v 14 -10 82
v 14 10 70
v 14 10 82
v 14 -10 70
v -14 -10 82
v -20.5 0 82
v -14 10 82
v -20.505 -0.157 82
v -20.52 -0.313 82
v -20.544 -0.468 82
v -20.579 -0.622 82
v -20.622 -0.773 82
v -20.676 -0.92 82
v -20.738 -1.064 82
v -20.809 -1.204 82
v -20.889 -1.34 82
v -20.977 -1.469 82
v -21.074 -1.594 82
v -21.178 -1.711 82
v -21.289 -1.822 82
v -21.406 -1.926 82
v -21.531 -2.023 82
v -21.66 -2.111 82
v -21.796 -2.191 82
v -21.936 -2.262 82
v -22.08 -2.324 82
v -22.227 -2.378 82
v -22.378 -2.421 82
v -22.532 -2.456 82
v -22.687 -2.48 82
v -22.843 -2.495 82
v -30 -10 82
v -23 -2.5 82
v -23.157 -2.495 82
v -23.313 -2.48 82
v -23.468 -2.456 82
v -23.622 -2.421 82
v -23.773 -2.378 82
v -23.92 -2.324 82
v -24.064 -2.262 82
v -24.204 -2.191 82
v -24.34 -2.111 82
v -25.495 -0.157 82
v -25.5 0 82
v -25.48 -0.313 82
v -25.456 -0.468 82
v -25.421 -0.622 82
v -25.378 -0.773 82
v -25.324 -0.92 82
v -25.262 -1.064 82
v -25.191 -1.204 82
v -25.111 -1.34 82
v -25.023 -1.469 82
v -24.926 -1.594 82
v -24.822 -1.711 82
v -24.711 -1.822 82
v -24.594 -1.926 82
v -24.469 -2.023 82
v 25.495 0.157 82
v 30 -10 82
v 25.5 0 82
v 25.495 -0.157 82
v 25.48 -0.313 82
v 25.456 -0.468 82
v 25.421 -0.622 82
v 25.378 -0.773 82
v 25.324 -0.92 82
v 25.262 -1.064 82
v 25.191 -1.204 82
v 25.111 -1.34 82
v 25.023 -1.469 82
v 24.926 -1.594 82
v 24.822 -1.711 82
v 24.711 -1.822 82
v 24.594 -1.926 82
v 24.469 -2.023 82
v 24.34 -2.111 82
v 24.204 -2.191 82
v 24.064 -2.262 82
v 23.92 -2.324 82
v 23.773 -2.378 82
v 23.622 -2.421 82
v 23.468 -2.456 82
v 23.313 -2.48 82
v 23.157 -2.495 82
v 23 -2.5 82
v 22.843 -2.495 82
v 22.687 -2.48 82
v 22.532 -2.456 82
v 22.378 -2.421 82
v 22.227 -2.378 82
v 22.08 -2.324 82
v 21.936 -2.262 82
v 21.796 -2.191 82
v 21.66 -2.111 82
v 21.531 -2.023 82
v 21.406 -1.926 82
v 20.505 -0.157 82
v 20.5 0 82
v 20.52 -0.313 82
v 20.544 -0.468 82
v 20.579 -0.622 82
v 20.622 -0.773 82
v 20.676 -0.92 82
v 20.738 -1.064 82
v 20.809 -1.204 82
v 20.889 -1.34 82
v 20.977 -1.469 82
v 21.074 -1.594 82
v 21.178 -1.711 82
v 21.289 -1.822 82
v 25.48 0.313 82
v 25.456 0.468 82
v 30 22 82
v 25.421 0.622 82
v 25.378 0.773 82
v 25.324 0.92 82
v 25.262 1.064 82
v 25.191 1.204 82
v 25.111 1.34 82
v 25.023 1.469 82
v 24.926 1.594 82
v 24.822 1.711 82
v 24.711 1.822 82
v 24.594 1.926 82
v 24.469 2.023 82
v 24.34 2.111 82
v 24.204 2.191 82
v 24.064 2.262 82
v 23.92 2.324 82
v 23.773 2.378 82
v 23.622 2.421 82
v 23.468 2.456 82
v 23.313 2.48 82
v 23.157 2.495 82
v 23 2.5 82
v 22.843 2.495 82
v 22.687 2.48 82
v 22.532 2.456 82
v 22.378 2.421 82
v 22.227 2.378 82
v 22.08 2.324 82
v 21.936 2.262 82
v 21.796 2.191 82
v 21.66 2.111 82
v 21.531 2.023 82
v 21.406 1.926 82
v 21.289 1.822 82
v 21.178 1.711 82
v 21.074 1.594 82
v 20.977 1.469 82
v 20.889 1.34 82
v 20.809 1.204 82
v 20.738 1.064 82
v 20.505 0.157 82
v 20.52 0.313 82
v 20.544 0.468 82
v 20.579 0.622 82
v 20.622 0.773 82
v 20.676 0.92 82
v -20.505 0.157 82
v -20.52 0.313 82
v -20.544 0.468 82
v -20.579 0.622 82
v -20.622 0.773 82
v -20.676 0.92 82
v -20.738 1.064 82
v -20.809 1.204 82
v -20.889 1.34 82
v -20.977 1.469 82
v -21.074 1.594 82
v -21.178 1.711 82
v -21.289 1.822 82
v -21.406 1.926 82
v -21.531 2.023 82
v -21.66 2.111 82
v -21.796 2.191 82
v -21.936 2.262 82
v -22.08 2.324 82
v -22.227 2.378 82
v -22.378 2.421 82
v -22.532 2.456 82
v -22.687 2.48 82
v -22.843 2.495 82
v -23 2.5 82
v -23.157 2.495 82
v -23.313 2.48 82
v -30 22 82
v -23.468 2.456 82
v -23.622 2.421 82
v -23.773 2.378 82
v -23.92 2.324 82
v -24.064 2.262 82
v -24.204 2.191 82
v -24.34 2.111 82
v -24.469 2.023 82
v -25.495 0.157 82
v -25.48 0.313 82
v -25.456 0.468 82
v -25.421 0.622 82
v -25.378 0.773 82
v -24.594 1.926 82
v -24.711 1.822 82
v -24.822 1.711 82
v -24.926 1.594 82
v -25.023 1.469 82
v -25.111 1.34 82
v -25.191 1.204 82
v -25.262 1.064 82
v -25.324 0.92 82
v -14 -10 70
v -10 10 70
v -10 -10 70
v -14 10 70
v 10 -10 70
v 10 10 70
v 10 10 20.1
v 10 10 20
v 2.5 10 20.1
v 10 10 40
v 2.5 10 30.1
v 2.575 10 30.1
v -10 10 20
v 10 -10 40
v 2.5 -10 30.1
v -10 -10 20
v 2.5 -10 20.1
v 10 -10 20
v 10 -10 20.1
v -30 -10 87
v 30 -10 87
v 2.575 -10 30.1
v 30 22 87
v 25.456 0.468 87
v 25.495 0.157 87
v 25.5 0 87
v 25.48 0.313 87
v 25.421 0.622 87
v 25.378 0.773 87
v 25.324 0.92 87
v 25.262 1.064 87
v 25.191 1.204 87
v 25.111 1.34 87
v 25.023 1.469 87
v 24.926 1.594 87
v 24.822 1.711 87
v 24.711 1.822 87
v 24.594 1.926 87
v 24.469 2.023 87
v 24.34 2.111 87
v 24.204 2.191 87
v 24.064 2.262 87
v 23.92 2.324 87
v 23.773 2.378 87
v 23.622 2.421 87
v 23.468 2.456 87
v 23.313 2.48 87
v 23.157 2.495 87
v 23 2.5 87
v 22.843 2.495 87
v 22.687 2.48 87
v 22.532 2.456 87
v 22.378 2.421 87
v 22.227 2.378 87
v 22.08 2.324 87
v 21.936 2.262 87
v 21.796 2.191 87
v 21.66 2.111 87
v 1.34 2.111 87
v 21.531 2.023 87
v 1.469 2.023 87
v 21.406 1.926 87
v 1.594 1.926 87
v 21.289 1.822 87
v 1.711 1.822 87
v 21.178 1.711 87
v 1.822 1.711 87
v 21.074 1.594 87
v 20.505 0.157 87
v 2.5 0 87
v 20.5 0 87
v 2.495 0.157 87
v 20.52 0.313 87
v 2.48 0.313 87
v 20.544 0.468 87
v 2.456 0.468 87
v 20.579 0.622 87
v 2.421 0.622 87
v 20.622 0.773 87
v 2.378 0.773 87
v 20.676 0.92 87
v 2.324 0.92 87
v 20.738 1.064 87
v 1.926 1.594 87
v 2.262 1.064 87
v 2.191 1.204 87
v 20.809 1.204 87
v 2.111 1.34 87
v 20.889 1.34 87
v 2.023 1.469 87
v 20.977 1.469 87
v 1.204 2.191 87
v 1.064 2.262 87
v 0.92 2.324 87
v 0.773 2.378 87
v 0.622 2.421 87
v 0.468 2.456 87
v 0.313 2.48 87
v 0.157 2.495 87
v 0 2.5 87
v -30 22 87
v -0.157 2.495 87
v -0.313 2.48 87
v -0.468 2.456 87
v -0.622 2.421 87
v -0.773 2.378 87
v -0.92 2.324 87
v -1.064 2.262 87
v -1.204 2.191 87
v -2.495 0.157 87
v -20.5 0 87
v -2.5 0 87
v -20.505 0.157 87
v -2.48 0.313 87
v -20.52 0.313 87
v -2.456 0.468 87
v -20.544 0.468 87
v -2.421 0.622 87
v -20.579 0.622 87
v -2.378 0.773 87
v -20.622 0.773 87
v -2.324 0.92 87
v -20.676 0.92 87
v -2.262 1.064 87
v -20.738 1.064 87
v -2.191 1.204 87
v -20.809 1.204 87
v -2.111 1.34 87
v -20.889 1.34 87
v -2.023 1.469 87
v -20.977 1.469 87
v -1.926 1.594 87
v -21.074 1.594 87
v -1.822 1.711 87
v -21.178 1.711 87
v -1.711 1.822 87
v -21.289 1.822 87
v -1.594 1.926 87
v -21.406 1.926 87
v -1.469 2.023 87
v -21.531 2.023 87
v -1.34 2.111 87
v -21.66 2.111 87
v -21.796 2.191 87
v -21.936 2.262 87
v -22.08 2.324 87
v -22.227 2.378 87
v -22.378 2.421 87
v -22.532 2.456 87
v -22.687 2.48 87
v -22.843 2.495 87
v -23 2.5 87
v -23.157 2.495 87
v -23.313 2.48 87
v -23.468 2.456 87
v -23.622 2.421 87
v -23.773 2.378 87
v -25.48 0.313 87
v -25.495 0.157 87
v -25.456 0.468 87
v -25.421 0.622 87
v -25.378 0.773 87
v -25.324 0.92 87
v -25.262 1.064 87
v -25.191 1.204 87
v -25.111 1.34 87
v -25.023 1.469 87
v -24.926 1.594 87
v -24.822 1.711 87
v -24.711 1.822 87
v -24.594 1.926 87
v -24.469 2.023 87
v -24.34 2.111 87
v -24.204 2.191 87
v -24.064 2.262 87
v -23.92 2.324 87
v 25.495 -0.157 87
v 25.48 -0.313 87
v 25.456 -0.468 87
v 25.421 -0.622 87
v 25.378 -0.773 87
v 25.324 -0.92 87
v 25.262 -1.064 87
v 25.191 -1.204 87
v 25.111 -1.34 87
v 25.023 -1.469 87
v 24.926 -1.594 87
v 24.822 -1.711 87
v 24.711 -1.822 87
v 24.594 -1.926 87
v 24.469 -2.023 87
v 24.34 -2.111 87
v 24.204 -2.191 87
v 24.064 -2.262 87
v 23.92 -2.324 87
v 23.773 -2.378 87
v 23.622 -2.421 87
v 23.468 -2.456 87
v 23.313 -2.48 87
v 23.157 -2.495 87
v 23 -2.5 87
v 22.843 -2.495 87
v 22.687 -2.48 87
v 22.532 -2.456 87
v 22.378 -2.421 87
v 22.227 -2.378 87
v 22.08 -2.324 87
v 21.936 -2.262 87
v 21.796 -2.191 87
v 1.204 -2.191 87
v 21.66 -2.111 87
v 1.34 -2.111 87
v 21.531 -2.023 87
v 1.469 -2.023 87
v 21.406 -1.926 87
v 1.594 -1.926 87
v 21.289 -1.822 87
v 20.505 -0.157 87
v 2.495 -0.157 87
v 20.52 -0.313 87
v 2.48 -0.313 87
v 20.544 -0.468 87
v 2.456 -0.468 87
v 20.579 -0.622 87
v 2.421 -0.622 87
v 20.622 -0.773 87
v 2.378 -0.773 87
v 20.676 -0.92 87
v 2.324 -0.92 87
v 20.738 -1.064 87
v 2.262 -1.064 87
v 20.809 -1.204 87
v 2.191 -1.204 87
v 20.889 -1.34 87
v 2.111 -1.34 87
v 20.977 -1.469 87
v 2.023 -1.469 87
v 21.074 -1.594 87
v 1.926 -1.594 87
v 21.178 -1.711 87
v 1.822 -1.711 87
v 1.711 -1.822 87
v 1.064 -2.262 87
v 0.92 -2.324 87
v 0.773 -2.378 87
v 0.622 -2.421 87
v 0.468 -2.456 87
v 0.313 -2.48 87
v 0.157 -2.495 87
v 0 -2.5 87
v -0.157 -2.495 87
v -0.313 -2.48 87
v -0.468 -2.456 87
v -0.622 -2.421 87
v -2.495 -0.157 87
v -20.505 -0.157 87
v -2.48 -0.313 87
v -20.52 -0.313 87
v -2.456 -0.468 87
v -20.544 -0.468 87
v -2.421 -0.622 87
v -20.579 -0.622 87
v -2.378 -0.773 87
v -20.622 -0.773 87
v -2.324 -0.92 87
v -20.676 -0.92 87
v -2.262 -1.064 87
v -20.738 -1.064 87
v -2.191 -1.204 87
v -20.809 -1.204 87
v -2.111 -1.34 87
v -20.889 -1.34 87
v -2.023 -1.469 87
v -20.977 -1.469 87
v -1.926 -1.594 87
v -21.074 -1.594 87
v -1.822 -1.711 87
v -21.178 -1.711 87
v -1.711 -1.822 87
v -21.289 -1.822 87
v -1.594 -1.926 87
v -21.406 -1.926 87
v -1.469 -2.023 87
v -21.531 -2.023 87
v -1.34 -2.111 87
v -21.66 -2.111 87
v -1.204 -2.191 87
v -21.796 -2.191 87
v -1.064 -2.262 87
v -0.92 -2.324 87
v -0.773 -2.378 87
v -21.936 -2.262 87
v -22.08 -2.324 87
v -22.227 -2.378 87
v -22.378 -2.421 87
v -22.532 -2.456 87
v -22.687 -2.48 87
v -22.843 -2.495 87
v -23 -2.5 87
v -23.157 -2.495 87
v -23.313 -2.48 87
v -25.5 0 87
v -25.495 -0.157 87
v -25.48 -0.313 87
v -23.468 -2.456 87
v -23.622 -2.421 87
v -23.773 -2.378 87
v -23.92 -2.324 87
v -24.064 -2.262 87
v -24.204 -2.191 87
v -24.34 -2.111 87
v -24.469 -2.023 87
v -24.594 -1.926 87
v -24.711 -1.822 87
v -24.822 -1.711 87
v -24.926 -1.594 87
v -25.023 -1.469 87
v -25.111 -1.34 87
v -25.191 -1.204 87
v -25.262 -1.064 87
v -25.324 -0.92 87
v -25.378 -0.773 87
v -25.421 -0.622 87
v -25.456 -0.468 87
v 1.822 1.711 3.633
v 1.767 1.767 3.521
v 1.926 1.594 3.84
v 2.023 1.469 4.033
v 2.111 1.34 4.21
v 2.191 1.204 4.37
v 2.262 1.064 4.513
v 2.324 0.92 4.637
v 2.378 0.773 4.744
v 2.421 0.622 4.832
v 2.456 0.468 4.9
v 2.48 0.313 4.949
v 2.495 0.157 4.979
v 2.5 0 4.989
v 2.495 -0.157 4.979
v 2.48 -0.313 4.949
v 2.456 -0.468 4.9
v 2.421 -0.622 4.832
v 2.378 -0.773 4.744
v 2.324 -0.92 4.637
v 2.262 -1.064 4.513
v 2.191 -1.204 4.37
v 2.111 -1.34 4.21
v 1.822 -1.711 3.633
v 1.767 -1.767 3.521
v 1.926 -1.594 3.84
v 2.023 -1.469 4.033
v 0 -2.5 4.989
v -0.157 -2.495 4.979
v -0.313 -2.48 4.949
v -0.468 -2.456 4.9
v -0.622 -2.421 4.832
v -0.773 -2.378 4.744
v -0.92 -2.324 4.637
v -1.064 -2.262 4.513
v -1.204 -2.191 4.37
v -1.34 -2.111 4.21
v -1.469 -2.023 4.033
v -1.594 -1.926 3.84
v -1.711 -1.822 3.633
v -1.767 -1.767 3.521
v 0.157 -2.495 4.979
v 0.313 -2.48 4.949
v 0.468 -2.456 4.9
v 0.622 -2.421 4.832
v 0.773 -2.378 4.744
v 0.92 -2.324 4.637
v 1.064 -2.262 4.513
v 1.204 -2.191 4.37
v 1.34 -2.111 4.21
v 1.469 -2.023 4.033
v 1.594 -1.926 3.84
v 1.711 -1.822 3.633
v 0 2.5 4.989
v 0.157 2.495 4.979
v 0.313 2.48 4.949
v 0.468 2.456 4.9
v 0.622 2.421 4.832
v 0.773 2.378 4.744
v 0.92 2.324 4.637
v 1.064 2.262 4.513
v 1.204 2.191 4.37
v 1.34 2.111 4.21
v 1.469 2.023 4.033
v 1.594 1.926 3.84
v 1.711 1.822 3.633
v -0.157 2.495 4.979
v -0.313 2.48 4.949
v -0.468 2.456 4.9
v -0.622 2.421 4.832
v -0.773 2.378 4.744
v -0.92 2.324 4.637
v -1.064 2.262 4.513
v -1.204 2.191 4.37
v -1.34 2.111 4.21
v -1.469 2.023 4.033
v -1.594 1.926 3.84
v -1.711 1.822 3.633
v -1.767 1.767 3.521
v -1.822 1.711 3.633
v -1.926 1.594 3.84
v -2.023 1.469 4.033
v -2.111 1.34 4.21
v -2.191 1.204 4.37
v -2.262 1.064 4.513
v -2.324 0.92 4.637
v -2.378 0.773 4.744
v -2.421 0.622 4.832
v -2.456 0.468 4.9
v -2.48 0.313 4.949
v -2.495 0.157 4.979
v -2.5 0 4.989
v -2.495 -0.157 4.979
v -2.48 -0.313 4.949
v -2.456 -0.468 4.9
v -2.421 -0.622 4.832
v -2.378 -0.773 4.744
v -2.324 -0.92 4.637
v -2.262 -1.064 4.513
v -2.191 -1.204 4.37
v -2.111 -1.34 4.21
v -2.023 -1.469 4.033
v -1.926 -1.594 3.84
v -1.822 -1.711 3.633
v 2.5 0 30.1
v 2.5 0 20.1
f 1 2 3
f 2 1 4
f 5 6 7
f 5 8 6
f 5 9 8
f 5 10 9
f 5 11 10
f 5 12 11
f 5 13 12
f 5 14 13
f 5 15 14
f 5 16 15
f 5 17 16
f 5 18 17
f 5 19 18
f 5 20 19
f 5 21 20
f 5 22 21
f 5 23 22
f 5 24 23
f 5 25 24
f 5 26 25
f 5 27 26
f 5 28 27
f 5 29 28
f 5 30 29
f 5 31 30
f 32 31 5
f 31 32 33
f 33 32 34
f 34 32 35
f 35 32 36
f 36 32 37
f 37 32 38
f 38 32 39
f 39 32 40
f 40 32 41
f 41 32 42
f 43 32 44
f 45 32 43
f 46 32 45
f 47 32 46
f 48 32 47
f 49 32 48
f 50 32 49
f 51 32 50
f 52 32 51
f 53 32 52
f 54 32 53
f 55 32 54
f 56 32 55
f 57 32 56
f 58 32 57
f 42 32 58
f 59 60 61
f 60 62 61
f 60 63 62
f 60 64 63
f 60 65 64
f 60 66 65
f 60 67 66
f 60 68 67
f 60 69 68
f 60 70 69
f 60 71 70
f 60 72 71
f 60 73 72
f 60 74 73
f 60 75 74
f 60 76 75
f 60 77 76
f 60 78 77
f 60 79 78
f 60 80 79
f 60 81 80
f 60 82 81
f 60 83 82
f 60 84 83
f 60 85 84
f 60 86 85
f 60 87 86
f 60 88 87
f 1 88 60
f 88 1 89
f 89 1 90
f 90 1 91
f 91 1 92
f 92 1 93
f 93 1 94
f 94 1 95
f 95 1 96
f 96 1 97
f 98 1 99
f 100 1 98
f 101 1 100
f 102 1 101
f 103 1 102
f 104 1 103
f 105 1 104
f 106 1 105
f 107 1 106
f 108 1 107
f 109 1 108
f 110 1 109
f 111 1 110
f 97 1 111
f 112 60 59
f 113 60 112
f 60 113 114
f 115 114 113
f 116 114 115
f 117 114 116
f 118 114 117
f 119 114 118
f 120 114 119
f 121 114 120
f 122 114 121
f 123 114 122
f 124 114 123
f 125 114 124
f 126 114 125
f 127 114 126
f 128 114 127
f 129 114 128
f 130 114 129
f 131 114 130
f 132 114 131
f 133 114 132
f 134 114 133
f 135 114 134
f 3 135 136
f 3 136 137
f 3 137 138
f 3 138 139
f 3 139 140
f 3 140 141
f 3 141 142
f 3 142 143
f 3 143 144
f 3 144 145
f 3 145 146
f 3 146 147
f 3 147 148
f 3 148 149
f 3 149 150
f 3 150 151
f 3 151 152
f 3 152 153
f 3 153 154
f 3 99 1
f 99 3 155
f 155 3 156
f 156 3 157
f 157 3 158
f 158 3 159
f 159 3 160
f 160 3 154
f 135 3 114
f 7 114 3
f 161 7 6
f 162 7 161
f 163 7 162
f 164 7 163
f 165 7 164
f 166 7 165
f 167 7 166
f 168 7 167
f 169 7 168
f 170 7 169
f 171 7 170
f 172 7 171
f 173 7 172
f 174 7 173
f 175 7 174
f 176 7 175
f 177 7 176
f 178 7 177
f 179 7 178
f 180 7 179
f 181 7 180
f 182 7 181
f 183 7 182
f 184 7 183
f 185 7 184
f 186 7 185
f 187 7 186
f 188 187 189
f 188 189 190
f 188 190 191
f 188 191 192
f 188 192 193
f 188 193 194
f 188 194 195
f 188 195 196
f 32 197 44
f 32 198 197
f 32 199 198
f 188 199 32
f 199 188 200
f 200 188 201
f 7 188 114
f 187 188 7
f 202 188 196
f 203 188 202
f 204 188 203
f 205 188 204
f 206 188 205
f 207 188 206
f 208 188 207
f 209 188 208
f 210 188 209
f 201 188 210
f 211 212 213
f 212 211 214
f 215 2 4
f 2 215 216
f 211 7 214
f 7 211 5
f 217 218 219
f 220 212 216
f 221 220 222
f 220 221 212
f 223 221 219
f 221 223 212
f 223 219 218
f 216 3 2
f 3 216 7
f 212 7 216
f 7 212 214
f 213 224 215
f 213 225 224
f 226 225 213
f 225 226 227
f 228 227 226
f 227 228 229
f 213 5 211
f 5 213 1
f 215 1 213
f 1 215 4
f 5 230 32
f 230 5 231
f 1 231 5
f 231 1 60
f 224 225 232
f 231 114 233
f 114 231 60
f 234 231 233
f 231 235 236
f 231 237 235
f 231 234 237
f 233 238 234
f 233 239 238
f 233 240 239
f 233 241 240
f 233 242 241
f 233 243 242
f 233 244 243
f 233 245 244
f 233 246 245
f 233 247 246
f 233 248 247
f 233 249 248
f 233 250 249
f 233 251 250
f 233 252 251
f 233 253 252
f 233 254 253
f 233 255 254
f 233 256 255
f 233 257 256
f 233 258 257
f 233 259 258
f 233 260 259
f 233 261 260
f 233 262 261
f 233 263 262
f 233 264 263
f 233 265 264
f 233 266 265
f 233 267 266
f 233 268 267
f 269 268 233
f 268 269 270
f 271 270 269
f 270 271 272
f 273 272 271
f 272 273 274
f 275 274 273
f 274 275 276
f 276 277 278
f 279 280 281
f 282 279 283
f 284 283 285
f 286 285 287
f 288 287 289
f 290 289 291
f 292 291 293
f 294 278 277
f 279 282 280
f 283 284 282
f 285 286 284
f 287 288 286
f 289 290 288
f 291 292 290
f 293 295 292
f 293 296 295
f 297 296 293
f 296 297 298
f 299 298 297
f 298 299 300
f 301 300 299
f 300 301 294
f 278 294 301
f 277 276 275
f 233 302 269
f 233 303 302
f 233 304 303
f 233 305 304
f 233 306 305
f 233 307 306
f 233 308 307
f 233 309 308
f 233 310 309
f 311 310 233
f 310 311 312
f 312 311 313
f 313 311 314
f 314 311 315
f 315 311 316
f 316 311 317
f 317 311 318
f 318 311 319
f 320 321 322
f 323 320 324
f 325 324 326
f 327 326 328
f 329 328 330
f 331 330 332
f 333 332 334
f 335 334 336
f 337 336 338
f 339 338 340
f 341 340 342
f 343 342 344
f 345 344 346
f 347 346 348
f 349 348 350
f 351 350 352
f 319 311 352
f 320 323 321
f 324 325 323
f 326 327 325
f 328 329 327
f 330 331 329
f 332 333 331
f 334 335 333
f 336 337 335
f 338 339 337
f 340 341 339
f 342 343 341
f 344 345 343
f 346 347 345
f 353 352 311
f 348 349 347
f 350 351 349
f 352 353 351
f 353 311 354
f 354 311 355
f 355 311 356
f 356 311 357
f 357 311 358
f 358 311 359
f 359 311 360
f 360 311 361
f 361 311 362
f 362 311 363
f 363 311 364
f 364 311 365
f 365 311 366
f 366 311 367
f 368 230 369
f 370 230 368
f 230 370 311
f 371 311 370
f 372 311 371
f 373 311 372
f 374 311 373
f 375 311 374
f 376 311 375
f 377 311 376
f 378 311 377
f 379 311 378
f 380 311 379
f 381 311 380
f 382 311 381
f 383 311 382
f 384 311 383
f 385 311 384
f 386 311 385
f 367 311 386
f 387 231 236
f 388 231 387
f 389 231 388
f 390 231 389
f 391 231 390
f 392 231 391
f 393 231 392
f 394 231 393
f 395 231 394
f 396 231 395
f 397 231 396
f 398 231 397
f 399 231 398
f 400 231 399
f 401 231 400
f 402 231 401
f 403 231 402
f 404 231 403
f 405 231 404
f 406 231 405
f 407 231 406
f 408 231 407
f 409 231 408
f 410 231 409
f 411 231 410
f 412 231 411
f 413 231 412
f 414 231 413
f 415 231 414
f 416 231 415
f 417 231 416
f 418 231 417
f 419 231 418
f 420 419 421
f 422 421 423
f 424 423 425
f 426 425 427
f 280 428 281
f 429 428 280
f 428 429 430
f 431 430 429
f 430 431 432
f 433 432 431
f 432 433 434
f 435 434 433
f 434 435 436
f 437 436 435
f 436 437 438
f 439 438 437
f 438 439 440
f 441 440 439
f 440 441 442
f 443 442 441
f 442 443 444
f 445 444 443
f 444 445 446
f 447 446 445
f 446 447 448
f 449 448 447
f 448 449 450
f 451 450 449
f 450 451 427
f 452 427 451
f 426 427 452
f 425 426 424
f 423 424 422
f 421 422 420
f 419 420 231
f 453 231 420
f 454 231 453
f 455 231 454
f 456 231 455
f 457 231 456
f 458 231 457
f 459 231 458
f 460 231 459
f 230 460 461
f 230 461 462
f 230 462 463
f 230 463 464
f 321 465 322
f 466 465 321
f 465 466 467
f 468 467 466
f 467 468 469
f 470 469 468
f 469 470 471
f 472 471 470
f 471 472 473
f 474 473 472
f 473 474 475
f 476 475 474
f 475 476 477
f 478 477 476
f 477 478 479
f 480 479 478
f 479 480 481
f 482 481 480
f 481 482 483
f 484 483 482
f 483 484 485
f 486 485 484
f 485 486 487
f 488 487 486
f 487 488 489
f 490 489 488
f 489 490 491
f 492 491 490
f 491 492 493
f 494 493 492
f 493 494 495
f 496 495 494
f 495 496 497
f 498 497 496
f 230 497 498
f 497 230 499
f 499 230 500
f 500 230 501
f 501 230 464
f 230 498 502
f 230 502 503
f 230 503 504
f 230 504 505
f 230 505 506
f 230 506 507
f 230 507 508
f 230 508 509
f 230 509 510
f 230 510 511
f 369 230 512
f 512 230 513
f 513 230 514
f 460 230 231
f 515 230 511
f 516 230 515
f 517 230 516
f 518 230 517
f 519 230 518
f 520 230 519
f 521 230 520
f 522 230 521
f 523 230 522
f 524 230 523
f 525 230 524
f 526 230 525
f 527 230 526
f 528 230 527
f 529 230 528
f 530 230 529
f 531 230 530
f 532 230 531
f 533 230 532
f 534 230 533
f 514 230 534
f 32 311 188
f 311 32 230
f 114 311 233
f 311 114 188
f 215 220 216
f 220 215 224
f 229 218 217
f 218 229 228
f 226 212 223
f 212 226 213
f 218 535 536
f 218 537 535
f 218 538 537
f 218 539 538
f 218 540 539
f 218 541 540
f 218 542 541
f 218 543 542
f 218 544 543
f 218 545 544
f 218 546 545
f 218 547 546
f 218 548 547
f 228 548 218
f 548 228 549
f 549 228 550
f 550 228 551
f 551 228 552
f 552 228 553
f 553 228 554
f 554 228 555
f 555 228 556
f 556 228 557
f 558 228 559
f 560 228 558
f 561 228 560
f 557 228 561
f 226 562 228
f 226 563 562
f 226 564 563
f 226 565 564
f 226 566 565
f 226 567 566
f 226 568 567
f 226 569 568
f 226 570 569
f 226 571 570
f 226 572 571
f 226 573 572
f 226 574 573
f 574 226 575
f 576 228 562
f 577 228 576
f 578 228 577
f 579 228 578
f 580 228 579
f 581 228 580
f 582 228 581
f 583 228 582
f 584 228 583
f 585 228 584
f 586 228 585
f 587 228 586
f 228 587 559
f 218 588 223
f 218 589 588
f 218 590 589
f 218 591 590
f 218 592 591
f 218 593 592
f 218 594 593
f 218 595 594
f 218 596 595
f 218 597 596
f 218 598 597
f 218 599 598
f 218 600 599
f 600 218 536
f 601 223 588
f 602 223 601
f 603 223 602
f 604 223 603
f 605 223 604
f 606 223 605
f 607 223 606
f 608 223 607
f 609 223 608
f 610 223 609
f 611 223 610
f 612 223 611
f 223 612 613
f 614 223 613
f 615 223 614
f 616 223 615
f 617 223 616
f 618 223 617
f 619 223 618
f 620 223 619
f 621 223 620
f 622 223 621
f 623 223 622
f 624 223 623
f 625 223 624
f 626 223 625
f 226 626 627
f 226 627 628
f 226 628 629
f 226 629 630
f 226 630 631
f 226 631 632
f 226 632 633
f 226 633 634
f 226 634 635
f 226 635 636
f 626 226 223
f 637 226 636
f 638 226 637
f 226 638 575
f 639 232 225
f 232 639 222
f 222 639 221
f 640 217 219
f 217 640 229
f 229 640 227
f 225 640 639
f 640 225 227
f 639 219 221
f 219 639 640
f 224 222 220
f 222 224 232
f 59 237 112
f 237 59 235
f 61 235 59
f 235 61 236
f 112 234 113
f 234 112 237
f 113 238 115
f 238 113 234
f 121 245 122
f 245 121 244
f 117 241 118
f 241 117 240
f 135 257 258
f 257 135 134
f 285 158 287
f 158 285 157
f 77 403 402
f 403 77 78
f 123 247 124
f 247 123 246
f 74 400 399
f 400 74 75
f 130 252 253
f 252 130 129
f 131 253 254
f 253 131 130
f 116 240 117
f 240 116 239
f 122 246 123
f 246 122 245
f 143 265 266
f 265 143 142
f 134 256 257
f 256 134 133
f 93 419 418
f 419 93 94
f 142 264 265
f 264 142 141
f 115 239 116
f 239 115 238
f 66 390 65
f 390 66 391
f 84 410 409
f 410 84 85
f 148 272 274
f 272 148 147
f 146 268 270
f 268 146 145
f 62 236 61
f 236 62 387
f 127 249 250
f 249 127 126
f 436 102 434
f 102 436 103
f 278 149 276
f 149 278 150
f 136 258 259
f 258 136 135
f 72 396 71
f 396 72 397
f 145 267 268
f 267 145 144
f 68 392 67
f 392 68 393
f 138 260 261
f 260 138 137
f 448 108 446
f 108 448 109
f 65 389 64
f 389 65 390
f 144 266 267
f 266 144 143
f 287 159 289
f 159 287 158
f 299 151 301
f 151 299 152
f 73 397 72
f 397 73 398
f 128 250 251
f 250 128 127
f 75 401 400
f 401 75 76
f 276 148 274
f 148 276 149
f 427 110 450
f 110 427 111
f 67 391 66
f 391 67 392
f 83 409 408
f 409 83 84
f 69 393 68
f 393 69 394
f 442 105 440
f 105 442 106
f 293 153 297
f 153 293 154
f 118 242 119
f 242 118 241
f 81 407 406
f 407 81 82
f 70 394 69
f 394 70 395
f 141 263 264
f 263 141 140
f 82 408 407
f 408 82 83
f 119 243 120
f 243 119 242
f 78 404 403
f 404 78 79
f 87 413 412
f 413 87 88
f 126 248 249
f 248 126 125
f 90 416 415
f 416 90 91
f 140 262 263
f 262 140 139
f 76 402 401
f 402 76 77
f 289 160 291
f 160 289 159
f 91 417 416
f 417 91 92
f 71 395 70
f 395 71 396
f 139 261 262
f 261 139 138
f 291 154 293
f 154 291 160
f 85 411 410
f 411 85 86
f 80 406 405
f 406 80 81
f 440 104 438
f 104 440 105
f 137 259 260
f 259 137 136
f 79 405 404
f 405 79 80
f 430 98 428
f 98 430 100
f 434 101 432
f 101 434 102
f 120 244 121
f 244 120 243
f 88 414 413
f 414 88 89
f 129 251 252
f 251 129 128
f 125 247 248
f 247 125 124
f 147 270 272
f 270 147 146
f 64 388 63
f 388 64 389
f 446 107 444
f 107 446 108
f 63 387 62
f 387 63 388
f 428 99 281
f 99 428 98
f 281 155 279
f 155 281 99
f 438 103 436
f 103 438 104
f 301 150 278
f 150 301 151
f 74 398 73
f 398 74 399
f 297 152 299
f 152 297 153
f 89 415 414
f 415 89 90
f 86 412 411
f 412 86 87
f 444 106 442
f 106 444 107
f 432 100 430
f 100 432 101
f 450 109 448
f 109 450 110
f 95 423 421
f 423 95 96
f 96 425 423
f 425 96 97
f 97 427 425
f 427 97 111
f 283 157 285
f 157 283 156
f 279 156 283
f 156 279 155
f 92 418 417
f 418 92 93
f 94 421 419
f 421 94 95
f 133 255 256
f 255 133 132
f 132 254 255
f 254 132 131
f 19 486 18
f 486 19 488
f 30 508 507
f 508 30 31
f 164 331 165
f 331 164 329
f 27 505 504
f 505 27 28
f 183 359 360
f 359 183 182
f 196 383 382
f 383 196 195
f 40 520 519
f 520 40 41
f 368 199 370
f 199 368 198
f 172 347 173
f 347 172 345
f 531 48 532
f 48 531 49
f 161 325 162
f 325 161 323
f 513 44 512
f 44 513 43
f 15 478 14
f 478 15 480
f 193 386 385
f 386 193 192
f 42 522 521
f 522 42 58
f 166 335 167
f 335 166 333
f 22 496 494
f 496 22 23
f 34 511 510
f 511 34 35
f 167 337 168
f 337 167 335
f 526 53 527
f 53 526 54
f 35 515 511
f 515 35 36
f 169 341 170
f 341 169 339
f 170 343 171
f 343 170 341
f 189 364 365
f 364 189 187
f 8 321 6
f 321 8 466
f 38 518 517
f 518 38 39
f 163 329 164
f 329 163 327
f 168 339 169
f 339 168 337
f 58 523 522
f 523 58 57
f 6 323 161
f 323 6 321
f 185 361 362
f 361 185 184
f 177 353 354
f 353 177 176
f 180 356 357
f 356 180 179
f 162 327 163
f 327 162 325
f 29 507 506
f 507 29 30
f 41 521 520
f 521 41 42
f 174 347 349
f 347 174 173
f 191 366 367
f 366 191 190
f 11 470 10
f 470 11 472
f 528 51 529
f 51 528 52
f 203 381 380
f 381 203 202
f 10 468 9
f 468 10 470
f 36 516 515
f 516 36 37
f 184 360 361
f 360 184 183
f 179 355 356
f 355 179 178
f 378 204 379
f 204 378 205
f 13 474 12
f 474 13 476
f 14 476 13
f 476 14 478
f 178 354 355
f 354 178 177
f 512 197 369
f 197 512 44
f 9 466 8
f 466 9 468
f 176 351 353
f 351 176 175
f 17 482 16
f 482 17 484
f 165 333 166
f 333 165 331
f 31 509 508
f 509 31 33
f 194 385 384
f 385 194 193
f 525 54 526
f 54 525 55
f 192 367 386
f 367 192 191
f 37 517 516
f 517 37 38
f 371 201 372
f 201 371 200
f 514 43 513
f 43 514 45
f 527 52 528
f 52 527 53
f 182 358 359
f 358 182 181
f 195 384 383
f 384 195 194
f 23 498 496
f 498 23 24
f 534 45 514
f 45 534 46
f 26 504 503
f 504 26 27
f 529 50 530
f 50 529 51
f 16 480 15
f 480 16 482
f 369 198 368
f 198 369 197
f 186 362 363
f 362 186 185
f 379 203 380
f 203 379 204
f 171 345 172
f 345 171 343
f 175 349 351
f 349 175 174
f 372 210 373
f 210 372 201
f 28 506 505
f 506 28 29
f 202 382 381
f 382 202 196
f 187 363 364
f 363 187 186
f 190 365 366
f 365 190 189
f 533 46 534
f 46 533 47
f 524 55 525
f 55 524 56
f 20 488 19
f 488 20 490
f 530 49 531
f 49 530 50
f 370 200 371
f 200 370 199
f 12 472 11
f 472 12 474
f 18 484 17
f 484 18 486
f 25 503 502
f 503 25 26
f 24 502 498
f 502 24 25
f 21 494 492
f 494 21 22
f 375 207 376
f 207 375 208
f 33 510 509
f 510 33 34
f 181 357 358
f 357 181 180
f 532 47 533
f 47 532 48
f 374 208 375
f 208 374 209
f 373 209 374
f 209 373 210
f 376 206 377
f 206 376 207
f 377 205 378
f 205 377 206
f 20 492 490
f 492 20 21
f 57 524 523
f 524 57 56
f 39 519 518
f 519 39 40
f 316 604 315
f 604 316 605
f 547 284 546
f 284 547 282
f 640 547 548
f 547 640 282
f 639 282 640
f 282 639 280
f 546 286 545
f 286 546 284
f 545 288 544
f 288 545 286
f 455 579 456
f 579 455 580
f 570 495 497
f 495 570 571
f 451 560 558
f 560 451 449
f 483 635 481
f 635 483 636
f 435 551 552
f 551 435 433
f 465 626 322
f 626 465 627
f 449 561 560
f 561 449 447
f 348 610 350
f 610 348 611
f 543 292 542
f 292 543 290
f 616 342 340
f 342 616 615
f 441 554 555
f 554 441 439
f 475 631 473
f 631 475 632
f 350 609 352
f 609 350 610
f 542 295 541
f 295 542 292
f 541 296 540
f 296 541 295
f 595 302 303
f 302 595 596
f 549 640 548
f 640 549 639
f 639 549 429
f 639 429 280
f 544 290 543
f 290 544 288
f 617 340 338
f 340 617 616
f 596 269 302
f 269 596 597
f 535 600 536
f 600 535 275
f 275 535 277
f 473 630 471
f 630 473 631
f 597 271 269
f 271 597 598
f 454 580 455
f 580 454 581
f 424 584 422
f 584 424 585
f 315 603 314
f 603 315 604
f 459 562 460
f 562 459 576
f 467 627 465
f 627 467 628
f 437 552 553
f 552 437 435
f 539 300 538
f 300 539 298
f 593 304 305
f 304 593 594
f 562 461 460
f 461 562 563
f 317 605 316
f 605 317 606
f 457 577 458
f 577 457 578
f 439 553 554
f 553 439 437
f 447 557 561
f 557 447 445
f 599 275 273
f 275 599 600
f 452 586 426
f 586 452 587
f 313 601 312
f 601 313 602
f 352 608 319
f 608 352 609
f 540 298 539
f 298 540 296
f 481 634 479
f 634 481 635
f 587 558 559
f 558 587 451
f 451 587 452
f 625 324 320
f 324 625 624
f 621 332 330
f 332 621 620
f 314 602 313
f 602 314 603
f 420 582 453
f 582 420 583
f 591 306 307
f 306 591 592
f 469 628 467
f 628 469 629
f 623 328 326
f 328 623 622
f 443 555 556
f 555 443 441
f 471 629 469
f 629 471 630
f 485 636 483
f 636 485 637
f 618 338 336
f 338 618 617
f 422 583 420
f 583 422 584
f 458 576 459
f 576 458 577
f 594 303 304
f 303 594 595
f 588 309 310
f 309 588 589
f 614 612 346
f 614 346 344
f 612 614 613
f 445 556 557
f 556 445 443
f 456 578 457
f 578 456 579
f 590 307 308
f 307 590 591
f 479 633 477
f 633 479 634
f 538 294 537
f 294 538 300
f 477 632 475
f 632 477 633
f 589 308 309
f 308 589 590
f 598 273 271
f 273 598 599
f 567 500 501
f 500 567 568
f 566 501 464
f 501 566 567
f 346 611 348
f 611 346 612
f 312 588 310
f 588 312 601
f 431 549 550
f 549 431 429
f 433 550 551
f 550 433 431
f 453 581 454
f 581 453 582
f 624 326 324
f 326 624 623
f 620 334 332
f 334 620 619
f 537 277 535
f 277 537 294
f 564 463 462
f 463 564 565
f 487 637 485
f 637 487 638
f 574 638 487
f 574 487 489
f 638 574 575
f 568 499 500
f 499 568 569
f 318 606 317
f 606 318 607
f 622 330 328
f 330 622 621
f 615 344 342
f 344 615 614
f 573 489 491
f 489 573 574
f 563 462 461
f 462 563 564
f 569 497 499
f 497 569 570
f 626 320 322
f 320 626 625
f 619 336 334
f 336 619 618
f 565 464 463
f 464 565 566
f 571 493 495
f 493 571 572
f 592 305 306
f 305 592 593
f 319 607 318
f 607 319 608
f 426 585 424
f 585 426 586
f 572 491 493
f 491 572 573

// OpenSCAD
size = 20;          // breedte/lengte van het vierkant
straight_h = 50;    // rechte blok: 1 cm
point_h = 20;       // taps gedeelte: 1 cm




difference() {
union() {

    translate([-size/2-4, -size/2, point_h+straight_h+0])
        cube([size+8, size, 12]);

    translate([-size/2-20, -size/2, point_h+straight_h+12])
        cube([size+40, size, 5]);

    translate([-size/2-20, -size/2, point_h+straight_h+12])
        cube([size+40, size+12, 5]);


    translate([-size/2, -size/2, point_h])
        cube([size, size, straight_h]);

    // Vierkant dat naar een punt loopt
    hull() {
        // onderkant van het vierkant
        translate([-size/2, -size/2, point_h])
            cube([size, size, 0.01]);
        // punt onderaan
        translate([0, 0, 0])
            cube([0.01, 0.01, 0.01], center=true);
    }
    

}
    translate([2.5, -20, 20.1])
        cube([10, 40, 10]);

    // Driehoekige uitsparing
    translate([2.5, -0, 30])
        rotate([90, 0, 0])
            linear_extrude(height=32, center=true)
                polygon([
                    [0, 0],
                    [40, 0],
                    [15, 20]
                ]);

   translate([23,0,-200]){
      rotate([0,0,0]){
                    cylinder(h=1000, r=2.5, $fn=100, center=false);
      }
  }
 translate([-23,0,-200]){
      rotate([0,0,0]){
                    cylinder(h=1000, r=2.5, $fn=100, center=false);
      }
  }
 translate([0,0,-200]){
      rotate([0,0,0]){
          cylinder(h=1000, r=2.5, $fn=100, center=false);
      }
  }

}
